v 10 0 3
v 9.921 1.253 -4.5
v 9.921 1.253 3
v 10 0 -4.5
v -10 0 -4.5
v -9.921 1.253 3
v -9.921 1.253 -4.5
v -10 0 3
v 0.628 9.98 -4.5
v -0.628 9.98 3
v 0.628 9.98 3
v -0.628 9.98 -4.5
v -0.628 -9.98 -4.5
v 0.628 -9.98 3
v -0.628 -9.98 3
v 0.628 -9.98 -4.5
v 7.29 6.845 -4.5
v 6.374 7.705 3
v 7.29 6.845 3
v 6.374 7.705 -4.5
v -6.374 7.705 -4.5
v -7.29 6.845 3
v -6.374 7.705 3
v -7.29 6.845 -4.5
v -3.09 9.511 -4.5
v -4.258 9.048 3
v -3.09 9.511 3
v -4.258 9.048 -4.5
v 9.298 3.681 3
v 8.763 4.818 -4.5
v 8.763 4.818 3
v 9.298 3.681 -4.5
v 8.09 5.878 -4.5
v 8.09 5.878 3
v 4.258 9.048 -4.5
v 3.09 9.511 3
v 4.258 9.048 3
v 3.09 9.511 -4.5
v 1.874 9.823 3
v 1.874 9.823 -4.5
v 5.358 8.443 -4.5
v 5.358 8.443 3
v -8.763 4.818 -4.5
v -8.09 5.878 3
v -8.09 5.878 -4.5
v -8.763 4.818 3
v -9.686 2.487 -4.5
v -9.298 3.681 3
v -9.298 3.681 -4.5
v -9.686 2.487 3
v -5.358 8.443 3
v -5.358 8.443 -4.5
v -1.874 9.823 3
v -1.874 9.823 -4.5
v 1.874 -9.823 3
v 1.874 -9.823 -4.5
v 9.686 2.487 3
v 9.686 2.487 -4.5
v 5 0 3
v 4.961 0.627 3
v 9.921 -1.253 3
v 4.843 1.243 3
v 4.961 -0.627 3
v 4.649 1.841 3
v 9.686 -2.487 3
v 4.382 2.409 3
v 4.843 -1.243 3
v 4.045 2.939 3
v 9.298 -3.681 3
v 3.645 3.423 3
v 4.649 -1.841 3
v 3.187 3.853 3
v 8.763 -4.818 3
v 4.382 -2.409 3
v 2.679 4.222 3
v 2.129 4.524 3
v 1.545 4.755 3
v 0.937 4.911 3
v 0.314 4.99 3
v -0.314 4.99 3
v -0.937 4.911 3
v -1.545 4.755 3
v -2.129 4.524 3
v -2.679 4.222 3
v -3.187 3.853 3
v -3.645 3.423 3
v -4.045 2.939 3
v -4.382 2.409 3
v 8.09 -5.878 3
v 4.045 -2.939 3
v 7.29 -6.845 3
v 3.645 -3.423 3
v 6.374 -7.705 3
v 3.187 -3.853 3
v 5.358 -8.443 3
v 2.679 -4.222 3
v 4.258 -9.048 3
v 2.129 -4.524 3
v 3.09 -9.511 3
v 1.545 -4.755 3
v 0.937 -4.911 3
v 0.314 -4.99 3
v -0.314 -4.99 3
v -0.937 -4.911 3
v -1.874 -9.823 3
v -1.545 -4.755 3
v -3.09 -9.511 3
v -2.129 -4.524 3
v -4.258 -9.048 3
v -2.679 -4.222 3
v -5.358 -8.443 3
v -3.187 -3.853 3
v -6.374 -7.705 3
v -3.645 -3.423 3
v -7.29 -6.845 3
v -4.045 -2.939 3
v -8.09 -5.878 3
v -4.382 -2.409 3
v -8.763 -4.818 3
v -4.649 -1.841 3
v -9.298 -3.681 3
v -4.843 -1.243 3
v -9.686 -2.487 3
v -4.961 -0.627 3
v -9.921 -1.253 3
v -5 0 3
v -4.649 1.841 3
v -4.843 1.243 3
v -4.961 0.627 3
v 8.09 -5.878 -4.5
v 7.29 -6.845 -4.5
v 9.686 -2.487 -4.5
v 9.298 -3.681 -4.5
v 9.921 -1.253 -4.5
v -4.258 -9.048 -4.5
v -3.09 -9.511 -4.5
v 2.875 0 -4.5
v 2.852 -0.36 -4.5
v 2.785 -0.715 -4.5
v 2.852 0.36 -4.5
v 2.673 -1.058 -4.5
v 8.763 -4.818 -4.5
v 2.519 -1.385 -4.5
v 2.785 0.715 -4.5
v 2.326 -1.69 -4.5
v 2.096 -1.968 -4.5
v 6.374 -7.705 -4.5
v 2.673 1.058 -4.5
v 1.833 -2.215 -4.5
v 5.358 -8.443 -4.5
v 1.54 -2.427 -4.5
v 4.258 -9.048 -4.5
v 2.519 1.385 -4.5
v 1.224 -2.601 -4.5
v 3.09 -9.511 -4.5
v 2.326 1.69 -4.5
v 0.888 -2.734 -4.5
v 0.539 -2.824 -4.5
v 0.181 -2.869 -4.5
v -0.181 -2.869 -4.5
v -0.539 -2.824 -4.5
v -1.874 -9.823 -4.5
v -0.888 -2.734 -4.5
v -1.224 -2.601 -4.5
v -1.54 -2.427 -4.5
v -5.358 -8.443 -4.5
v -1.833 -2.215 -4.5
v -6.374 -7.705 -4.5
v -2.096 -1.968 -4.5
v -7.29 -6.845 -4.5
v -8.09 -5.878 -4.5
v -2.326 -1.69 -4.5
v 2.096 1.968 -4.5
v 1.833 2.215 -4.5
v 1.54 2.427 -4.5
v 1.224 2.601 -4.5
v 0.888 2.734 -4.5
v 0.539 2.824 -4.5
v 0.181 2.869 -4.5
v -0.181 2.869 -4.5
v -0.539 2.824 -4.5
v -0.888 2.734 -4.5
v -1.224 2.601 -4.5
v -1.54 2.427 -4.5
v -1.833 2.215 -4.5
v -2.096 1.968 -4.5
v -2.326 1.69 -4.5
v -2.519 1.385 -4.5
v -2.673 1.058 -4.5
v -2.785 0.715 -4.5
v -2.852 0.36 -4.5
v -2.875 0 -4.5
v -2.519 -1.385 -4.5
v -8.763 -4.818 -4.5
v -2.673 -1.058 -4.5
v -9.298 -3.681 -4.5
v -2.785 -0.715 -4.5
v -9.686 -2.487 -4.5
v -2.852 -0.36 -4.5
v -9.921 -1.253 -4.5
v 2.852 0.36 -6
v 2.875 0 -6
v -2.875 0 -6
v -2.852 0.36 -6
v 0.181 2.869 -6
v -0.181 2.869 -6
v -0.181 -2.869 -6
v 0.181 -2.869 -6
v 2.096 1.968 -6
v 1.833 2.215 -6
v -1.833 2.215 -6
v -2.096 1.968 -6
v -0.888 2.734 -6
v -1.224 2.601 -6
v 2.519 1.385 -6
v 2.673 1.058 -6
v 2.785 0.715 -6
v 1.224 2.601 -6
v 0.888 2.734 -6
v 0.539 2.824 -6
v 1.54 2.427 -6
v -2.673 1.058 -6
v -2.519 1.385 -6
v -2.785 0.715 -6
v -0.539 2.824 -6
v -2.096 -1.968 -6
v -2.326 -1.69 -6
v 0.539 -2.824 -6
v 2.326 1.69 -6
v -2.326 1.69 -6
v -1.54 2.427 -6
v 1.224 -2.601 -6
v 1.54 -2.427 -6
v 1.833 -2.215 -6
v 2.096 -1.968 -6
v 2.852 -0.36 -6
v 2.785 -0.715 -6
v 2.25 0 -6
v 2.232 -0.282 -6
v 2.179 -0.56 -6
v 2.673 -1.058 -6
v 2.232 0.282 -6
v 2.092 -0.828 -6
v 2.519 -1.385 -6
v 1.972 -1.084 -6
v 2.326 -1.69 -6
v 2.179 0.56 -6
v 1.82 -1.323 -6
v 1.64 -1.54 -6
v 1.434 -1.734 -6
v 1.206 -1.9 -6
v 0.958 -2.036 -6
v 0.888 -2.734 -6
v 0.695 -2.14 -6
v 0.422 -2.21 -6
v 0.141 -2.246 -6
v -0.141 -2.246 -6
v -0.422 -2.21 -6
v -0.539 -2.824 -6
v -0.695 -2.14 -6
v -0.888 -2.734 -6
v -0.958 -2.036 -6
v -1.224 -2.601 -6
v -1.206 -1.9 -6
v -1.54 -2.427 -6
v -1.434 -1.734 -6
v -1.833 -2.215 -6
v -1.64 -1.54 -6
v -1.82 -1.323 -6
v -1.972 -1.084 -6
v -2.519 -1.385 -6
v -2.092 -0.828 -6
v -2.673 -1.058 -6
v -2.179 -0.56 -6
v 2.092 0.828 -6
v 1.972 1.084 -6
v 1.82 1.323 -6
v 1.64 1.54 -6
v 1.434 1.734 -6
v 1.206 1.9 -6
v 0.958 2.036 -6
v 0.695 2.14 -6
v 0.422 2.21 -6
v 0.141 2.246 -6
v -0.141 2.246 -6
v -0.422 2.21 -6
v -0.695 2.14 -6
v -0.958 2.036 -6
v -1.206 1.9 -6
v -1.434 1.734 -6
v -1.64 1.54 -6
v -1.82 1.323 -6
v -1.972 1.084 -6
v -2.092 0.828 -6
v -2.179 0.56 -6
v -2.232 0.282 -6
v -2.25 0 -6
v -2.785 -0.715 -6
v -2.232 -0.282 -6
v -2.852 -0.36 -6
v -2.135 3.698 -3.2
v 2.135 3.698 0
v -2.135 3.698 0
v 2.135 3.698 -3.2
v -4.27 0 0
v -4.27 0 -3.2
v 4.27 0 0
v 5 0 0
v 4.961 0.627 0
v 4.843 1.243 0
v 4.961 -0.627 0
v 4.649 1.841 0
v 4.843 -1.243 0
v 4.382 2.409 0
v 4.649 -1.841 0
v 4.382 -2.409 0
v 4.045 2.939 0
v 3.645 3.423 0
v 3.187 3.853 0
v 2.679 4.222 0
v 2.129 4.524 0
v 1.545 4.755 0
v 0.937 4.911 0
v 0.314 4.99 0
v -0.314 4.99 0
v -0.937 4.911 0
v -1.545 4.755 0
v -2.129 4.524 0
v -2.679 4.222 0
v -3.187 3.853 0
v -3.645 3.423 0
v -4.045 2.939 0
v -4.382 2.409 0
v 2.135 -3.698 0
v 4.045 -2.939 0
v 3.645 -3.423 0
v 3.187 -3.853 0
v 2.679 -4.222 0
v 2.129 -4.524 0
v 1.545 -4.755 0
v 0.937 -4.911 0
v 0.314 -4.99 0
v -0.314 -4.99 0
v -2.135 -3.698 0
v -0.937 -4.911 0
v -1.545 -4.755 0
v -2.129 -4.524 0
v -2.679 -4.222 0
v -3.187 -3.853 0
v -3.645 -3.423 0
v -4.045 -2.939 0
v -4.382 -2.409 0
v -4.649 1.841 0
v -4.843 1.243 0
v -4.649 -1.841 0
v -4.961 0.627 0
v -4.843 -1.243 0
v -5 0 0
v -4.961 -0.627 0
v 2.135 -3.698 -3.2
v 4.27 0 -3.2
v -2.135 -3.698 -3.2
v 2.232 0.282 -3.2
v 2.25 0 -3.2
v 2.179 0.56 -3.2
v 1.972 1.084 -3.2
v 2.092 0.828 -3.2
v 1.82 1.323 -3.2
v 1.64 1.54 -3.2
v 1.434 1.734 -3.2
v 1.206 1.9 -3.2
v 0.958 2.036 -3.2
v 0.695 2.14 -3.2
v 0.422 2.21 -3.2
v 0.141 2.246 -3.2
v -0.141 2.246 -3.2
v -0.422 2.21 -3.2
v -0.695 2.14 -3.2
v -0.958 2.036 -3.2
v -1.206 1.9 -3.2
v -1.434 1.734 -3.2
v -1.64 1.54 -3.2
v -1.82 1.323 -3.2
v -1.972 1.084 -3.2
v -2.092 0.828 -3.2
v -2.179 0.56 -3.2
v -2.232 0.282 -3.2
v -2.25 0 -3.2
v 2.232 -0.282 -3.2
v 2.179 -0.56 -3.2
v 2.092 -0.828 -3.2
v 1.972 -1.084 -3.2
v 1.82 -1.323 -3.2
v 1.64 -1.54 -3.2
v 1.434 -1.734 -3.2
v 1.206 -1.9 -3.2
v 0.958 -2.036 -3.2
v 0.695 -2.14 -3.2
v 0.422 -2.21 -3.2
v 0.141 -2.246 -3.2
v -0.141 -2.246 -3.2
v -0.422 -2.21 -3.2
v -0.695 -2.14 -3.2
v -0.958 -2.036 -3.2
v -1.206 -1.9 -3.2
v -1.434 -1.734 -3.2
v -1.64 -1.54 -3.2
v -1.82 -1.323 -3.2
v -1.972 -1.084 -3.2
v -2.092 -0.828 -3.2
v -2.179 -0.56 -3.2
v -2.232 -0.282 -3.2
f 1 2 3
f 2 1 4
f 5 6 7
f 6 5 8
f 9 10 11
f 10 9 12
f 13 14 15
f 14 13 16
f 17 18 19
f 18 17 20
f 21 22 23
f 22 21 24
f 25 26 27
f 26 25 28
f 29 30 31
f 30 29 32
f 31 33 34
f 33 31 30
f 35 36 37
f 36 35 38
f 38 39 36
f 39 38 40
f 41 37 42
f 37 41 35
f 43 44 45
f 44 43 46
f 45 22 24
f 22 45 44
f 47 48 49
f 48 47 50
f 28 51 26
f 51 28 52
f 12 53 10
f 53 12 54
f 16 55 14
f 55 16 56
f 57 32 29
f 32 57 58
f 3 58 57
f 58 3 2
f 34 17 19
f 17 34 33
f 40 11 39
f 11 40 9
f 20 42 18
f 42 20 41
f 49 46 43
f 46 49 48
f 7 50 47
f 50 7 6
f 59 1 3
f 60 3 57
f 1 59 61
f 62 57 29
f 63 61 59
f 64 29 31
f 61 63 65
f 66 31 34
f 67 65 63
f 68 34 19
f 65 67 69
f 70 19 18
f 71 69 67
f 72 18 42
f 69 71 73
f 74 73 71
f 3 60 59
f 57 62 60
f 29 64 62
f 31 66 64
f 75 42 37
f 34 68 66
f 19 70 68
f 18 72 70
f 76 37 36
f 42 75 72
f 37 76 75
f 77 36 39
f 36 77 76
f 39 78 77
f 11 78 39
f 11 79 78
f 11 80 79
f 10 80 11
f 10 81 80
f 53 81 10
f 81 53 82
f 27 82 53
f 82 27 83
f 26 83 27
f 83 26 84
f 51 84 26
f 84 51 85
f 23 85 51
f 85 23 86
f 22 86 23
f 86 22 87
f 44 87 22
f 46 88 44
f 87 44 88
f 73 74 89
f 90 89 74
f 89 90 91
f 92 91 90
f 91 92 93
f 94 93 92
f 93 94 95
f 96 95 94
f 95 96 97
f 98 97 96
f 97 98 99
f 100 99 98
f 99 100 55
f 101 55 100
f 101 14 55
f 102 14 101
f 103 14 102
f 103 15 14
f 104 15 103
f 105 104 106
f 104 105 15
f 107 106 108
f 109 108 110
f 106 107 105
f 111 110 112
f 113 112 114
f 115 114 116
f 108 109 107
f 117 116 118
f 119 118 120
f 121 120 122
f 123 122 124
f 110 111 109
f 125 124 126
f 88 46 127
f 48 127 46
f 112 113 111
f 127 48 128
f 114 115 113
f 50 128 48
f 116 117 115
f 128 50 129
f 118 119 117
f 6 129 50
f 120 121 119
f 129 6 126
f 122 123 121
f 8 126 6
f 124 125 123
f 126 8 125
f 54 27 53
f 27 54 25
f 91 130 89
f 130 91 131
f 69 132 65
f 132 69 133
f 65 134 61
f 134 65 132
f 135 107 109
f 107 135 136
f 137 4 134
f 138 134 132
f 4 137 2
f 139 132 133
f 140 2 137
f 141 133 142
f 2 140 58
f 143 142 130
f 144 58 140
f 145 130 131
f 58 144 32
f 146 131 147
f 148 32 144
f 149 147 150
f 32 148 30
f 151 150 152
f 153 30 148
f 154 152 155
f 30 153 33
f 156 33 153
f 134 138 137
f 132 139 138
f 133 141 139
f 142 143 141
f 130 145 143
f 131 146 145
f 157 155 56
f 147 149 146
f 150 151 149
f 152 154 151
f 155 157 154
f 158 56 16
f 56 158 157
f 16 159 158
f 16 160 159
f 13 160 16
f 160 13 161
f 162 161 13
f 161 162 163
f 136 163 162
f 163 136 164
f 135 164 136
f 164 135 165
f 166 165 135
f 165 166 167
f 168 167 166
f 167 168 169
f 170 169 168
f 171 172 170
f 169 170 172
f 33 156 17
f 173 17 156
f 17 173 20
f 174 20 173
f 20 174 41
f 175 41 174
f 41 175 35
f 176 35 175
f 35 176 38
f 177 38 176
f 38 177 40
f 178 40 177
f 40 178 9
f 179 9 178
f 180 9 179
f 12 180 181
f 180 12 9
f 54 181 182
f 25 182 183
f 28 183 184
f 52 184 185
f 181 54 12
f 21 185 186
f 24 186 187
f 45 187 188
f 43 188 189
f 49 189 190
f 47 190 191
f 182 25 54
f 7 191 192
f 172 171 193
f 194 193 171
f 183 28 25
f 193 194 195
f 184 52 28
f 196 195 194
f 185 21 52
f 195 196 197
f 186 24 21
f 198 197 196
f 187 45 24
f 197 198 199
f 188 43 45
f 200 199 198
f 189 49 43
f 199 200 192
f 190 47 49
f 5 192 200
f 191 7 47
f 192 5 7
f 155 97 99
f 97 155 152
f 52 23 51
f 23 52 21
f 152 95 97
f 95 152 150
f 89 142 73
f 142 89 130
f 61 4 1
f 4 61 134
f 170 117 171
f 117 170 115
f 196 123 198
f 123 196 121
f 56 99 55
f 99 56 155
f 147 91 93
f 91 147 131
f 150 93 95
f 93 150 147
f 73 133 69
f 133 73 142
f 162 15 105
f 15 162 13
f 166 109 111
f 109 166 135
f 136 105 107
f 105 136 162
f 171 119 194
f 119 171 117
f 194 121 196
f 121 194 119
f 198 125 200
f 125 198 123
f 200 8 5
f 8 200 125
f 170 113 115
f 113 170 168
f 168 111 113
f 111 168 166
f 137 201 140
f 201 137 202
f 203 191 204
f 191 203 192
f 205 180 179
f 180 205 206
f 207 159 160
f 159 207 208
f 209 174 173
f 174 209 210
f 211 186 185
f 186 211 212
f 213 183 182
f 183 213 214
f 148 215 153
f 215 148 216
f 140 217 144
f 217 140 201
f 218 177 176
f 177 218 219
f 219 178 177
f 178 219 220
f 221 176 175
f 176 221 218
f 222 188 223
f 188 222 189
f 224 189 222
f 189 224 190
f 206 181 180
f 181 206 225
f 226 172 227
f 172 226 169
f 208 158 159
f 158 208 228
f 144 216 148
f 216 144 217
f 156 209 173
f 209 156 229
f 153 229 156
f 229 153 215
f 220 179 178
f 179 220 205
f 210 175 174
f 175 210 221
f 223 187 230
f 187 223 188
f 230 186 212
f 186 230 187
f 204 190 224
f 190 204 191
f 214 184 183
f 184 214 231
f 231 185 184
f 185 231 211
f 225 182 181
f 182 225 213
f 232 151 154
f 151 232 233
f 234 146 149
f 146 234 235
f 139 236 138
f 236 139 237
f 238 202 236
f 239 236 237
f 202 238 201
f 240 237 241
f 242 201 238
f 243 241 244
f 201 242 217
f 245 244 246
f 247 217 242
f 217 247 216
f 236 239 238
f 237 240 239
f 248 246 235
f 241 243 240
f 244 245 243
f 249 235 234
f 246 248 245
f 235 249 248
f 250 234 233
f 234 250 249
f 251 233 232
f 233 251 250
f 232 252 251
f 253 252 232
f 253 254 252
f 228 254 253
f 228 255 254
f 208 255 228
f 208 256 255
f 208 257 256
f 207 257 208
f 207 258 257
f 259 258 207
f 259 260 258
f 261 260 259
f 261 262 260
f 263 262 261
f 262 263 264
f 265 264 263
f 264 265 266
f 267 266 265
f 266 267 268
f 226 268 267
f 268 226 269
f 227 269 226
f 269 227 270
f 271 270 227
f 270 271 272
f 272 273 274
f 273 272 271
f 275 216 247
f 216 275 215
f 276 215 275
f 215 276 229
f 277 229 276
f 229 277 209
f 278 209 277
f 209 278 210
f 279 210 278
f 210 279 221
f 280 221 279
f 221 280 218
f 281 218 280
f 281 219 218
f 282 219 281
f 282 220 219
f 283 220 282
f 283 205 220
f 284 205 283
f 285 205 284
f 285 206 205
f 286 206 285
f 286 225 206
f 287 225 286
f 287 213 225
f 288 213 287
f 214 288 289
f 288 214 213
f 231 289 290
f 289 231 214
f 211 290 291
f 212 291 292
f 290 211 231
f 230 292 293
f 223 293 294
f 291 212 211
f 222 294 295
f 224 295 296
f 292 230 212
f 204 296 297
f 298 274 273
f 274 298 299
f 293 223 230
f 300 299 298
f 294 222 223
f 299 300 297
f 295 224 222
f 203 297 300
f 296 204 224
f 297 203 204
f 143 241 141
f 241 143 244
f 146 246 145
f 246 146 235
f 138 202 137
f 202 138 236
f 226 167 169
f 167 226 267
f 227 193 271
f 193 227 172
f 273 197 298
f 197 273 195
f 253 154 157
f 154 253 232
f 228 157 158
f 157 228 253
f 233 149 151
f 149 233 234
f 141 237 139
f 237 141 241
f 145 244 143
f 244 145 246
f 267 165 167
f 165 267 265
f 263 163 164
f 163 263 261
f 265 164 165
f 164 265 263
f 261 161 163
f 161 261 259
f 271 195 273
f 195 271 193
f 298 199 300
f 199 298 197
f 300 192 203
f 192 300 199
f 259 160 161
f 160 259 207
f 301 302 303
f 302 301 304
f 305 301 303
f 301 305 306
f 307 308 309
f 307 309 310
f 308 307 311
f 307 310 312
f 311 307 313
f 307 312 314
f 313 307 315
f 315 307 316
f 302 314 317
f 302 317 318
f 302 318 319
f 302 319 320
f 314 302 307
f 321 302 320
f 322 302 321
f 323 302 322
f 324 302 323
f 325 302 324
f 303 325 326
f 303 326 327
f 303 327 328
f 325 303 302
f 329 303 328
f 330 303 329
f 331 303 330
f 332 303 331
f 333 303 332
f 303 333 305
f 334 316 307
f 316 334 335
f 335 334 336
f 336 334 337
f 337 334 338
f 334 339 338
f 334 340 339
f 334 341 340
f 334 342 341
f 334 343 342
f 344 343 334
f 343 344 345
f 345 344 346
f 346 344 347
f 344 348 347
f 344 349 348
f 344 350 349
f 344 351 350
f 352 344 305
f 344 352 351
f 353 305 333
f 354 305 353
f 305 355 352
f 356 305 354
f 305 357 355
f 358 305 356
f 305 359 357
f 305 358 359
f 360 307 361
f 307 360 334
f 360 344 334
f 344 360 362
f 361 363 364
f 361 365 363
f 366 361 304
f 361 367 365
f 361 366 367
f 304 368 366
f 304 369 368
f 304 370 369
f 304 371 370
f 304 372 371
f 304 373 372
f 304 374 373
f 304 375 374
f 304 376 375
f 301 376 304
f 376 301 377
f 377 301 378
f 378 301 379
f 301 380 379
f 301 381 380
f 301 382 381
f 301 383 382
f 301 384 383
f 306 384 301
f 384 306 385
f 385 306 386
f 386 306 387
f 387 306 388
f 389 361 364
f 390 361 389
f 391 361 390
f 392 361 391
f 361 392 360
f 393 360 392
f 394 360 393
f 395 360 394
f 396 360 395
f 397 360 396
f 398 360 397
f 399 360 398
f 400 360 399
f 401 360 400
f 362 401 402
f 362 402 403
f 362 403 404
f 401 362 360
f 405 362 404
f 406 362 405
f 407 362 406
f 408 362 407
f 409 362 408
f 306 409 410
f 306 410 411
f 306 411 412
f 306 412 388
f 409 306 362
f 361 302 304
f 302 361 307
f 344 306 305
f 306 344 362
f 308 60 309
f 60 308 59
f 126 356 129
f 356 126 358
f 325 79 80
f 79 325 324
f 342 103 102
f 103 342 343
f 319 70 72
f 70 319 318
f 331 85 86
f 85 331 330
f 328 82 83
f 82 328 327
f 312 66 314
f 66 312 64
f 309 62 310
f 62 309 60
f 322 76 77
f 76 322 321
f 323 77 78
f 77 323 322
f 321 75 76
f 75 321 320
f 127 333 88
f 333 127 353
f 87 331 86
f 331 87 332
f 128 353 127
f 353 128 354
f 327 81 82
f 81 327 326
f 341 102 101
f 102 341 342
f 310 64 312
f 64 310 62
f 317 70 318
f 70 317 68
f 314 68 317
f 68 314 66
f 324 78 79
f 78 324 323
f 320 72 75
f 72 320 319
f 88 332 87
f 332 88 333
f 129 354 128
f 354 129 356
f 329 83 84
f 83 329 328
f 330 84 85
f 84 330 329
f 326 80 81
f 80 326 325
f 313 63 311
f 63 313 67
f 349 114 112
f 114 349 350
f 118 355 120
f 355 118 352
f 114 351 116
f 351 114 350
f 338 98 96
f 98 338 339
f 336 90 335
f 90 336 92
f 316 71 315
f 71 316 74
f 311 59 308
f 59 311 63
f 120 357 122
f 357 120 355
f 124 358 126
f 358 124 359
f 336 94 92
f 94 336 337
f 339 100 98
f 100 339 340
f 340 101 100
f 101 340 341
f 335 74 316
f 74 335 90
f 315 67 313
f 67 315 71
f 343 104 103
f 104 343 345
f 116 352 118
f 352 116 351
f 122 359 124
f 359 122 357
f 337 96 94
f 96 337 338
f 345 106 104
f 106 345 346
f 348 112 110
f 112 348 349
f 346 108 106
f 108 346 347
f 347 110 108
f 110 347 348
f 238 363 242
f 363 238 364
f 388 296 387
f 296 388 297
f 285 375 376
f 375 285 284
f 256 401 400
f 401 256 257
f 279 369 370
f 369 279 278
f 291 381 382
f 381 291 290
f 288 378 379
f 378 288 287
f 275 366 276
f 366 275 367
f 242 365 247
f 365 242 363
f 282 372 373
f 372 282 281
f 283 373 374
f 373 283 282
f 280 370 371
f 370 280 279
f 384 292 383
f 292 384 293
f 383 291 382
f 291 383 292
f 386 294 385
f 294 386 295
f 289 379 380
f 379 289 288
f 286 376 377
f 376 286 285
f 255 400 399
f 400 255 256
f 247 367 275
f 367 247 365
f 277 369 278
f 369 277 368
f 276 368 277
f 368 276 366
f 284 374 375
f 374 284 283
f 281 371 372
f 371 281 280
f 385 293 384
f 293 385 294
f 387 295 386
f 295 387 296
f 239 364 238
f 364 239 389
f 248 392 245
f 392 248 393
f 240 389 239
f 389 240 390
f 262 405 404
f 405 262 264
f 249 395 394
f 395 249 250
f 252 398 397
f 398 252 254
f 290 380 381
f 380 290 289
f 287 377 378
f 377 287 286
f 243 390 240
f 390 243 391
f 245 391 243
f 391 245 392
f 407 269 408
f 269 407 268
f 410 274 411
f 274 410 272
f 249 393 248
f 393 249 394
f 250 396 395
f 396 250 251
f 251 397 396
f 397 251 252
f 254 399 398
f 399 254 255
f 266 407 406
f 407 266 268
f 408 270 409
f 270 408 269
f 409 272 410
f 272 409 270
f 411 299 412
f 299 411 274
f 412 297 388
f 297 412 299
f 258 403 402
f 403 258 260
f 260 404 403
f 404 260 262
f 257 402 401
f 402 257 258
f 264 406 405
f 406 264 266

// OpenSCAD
$fn = 50;

difference() {
	union() {
		translate(v = [0, 0, -4.5]) {
			cylinder(h = 7.5, r = 10.0);
		}
		#translate(v = [0, 0, -6.0]) {
			cylinder(h = 6, r = 2.875);
		}
	}
	union() {
		translate(v = [0, 0, 0]) {
			rotate(a = [0, 0, 0]) {
				difference() {
					union() {
						translate(v = [0, 0, -3.2]) {
							linear_extrude(height = 3.2) {
								polygon(points = [[4.2698, 0.0], [2.1349000000000005, 3.697755269078796], [-2.134899999999999, 3.6977552690787965], [-4.2698, 5.228996902999369e-16], [-2.134900000000002, -3.6977552690787956], [2.1348999999999974, -3.697755269078798]]);
							}
						}
					}
					union();
				}
			}
		}
		#cylinder(h = 3, r = 5.0);
		#translate(v = [0, 0, -100.0]) {
			cylinder(h = 200, r = 2.25);
		}
	}
}
